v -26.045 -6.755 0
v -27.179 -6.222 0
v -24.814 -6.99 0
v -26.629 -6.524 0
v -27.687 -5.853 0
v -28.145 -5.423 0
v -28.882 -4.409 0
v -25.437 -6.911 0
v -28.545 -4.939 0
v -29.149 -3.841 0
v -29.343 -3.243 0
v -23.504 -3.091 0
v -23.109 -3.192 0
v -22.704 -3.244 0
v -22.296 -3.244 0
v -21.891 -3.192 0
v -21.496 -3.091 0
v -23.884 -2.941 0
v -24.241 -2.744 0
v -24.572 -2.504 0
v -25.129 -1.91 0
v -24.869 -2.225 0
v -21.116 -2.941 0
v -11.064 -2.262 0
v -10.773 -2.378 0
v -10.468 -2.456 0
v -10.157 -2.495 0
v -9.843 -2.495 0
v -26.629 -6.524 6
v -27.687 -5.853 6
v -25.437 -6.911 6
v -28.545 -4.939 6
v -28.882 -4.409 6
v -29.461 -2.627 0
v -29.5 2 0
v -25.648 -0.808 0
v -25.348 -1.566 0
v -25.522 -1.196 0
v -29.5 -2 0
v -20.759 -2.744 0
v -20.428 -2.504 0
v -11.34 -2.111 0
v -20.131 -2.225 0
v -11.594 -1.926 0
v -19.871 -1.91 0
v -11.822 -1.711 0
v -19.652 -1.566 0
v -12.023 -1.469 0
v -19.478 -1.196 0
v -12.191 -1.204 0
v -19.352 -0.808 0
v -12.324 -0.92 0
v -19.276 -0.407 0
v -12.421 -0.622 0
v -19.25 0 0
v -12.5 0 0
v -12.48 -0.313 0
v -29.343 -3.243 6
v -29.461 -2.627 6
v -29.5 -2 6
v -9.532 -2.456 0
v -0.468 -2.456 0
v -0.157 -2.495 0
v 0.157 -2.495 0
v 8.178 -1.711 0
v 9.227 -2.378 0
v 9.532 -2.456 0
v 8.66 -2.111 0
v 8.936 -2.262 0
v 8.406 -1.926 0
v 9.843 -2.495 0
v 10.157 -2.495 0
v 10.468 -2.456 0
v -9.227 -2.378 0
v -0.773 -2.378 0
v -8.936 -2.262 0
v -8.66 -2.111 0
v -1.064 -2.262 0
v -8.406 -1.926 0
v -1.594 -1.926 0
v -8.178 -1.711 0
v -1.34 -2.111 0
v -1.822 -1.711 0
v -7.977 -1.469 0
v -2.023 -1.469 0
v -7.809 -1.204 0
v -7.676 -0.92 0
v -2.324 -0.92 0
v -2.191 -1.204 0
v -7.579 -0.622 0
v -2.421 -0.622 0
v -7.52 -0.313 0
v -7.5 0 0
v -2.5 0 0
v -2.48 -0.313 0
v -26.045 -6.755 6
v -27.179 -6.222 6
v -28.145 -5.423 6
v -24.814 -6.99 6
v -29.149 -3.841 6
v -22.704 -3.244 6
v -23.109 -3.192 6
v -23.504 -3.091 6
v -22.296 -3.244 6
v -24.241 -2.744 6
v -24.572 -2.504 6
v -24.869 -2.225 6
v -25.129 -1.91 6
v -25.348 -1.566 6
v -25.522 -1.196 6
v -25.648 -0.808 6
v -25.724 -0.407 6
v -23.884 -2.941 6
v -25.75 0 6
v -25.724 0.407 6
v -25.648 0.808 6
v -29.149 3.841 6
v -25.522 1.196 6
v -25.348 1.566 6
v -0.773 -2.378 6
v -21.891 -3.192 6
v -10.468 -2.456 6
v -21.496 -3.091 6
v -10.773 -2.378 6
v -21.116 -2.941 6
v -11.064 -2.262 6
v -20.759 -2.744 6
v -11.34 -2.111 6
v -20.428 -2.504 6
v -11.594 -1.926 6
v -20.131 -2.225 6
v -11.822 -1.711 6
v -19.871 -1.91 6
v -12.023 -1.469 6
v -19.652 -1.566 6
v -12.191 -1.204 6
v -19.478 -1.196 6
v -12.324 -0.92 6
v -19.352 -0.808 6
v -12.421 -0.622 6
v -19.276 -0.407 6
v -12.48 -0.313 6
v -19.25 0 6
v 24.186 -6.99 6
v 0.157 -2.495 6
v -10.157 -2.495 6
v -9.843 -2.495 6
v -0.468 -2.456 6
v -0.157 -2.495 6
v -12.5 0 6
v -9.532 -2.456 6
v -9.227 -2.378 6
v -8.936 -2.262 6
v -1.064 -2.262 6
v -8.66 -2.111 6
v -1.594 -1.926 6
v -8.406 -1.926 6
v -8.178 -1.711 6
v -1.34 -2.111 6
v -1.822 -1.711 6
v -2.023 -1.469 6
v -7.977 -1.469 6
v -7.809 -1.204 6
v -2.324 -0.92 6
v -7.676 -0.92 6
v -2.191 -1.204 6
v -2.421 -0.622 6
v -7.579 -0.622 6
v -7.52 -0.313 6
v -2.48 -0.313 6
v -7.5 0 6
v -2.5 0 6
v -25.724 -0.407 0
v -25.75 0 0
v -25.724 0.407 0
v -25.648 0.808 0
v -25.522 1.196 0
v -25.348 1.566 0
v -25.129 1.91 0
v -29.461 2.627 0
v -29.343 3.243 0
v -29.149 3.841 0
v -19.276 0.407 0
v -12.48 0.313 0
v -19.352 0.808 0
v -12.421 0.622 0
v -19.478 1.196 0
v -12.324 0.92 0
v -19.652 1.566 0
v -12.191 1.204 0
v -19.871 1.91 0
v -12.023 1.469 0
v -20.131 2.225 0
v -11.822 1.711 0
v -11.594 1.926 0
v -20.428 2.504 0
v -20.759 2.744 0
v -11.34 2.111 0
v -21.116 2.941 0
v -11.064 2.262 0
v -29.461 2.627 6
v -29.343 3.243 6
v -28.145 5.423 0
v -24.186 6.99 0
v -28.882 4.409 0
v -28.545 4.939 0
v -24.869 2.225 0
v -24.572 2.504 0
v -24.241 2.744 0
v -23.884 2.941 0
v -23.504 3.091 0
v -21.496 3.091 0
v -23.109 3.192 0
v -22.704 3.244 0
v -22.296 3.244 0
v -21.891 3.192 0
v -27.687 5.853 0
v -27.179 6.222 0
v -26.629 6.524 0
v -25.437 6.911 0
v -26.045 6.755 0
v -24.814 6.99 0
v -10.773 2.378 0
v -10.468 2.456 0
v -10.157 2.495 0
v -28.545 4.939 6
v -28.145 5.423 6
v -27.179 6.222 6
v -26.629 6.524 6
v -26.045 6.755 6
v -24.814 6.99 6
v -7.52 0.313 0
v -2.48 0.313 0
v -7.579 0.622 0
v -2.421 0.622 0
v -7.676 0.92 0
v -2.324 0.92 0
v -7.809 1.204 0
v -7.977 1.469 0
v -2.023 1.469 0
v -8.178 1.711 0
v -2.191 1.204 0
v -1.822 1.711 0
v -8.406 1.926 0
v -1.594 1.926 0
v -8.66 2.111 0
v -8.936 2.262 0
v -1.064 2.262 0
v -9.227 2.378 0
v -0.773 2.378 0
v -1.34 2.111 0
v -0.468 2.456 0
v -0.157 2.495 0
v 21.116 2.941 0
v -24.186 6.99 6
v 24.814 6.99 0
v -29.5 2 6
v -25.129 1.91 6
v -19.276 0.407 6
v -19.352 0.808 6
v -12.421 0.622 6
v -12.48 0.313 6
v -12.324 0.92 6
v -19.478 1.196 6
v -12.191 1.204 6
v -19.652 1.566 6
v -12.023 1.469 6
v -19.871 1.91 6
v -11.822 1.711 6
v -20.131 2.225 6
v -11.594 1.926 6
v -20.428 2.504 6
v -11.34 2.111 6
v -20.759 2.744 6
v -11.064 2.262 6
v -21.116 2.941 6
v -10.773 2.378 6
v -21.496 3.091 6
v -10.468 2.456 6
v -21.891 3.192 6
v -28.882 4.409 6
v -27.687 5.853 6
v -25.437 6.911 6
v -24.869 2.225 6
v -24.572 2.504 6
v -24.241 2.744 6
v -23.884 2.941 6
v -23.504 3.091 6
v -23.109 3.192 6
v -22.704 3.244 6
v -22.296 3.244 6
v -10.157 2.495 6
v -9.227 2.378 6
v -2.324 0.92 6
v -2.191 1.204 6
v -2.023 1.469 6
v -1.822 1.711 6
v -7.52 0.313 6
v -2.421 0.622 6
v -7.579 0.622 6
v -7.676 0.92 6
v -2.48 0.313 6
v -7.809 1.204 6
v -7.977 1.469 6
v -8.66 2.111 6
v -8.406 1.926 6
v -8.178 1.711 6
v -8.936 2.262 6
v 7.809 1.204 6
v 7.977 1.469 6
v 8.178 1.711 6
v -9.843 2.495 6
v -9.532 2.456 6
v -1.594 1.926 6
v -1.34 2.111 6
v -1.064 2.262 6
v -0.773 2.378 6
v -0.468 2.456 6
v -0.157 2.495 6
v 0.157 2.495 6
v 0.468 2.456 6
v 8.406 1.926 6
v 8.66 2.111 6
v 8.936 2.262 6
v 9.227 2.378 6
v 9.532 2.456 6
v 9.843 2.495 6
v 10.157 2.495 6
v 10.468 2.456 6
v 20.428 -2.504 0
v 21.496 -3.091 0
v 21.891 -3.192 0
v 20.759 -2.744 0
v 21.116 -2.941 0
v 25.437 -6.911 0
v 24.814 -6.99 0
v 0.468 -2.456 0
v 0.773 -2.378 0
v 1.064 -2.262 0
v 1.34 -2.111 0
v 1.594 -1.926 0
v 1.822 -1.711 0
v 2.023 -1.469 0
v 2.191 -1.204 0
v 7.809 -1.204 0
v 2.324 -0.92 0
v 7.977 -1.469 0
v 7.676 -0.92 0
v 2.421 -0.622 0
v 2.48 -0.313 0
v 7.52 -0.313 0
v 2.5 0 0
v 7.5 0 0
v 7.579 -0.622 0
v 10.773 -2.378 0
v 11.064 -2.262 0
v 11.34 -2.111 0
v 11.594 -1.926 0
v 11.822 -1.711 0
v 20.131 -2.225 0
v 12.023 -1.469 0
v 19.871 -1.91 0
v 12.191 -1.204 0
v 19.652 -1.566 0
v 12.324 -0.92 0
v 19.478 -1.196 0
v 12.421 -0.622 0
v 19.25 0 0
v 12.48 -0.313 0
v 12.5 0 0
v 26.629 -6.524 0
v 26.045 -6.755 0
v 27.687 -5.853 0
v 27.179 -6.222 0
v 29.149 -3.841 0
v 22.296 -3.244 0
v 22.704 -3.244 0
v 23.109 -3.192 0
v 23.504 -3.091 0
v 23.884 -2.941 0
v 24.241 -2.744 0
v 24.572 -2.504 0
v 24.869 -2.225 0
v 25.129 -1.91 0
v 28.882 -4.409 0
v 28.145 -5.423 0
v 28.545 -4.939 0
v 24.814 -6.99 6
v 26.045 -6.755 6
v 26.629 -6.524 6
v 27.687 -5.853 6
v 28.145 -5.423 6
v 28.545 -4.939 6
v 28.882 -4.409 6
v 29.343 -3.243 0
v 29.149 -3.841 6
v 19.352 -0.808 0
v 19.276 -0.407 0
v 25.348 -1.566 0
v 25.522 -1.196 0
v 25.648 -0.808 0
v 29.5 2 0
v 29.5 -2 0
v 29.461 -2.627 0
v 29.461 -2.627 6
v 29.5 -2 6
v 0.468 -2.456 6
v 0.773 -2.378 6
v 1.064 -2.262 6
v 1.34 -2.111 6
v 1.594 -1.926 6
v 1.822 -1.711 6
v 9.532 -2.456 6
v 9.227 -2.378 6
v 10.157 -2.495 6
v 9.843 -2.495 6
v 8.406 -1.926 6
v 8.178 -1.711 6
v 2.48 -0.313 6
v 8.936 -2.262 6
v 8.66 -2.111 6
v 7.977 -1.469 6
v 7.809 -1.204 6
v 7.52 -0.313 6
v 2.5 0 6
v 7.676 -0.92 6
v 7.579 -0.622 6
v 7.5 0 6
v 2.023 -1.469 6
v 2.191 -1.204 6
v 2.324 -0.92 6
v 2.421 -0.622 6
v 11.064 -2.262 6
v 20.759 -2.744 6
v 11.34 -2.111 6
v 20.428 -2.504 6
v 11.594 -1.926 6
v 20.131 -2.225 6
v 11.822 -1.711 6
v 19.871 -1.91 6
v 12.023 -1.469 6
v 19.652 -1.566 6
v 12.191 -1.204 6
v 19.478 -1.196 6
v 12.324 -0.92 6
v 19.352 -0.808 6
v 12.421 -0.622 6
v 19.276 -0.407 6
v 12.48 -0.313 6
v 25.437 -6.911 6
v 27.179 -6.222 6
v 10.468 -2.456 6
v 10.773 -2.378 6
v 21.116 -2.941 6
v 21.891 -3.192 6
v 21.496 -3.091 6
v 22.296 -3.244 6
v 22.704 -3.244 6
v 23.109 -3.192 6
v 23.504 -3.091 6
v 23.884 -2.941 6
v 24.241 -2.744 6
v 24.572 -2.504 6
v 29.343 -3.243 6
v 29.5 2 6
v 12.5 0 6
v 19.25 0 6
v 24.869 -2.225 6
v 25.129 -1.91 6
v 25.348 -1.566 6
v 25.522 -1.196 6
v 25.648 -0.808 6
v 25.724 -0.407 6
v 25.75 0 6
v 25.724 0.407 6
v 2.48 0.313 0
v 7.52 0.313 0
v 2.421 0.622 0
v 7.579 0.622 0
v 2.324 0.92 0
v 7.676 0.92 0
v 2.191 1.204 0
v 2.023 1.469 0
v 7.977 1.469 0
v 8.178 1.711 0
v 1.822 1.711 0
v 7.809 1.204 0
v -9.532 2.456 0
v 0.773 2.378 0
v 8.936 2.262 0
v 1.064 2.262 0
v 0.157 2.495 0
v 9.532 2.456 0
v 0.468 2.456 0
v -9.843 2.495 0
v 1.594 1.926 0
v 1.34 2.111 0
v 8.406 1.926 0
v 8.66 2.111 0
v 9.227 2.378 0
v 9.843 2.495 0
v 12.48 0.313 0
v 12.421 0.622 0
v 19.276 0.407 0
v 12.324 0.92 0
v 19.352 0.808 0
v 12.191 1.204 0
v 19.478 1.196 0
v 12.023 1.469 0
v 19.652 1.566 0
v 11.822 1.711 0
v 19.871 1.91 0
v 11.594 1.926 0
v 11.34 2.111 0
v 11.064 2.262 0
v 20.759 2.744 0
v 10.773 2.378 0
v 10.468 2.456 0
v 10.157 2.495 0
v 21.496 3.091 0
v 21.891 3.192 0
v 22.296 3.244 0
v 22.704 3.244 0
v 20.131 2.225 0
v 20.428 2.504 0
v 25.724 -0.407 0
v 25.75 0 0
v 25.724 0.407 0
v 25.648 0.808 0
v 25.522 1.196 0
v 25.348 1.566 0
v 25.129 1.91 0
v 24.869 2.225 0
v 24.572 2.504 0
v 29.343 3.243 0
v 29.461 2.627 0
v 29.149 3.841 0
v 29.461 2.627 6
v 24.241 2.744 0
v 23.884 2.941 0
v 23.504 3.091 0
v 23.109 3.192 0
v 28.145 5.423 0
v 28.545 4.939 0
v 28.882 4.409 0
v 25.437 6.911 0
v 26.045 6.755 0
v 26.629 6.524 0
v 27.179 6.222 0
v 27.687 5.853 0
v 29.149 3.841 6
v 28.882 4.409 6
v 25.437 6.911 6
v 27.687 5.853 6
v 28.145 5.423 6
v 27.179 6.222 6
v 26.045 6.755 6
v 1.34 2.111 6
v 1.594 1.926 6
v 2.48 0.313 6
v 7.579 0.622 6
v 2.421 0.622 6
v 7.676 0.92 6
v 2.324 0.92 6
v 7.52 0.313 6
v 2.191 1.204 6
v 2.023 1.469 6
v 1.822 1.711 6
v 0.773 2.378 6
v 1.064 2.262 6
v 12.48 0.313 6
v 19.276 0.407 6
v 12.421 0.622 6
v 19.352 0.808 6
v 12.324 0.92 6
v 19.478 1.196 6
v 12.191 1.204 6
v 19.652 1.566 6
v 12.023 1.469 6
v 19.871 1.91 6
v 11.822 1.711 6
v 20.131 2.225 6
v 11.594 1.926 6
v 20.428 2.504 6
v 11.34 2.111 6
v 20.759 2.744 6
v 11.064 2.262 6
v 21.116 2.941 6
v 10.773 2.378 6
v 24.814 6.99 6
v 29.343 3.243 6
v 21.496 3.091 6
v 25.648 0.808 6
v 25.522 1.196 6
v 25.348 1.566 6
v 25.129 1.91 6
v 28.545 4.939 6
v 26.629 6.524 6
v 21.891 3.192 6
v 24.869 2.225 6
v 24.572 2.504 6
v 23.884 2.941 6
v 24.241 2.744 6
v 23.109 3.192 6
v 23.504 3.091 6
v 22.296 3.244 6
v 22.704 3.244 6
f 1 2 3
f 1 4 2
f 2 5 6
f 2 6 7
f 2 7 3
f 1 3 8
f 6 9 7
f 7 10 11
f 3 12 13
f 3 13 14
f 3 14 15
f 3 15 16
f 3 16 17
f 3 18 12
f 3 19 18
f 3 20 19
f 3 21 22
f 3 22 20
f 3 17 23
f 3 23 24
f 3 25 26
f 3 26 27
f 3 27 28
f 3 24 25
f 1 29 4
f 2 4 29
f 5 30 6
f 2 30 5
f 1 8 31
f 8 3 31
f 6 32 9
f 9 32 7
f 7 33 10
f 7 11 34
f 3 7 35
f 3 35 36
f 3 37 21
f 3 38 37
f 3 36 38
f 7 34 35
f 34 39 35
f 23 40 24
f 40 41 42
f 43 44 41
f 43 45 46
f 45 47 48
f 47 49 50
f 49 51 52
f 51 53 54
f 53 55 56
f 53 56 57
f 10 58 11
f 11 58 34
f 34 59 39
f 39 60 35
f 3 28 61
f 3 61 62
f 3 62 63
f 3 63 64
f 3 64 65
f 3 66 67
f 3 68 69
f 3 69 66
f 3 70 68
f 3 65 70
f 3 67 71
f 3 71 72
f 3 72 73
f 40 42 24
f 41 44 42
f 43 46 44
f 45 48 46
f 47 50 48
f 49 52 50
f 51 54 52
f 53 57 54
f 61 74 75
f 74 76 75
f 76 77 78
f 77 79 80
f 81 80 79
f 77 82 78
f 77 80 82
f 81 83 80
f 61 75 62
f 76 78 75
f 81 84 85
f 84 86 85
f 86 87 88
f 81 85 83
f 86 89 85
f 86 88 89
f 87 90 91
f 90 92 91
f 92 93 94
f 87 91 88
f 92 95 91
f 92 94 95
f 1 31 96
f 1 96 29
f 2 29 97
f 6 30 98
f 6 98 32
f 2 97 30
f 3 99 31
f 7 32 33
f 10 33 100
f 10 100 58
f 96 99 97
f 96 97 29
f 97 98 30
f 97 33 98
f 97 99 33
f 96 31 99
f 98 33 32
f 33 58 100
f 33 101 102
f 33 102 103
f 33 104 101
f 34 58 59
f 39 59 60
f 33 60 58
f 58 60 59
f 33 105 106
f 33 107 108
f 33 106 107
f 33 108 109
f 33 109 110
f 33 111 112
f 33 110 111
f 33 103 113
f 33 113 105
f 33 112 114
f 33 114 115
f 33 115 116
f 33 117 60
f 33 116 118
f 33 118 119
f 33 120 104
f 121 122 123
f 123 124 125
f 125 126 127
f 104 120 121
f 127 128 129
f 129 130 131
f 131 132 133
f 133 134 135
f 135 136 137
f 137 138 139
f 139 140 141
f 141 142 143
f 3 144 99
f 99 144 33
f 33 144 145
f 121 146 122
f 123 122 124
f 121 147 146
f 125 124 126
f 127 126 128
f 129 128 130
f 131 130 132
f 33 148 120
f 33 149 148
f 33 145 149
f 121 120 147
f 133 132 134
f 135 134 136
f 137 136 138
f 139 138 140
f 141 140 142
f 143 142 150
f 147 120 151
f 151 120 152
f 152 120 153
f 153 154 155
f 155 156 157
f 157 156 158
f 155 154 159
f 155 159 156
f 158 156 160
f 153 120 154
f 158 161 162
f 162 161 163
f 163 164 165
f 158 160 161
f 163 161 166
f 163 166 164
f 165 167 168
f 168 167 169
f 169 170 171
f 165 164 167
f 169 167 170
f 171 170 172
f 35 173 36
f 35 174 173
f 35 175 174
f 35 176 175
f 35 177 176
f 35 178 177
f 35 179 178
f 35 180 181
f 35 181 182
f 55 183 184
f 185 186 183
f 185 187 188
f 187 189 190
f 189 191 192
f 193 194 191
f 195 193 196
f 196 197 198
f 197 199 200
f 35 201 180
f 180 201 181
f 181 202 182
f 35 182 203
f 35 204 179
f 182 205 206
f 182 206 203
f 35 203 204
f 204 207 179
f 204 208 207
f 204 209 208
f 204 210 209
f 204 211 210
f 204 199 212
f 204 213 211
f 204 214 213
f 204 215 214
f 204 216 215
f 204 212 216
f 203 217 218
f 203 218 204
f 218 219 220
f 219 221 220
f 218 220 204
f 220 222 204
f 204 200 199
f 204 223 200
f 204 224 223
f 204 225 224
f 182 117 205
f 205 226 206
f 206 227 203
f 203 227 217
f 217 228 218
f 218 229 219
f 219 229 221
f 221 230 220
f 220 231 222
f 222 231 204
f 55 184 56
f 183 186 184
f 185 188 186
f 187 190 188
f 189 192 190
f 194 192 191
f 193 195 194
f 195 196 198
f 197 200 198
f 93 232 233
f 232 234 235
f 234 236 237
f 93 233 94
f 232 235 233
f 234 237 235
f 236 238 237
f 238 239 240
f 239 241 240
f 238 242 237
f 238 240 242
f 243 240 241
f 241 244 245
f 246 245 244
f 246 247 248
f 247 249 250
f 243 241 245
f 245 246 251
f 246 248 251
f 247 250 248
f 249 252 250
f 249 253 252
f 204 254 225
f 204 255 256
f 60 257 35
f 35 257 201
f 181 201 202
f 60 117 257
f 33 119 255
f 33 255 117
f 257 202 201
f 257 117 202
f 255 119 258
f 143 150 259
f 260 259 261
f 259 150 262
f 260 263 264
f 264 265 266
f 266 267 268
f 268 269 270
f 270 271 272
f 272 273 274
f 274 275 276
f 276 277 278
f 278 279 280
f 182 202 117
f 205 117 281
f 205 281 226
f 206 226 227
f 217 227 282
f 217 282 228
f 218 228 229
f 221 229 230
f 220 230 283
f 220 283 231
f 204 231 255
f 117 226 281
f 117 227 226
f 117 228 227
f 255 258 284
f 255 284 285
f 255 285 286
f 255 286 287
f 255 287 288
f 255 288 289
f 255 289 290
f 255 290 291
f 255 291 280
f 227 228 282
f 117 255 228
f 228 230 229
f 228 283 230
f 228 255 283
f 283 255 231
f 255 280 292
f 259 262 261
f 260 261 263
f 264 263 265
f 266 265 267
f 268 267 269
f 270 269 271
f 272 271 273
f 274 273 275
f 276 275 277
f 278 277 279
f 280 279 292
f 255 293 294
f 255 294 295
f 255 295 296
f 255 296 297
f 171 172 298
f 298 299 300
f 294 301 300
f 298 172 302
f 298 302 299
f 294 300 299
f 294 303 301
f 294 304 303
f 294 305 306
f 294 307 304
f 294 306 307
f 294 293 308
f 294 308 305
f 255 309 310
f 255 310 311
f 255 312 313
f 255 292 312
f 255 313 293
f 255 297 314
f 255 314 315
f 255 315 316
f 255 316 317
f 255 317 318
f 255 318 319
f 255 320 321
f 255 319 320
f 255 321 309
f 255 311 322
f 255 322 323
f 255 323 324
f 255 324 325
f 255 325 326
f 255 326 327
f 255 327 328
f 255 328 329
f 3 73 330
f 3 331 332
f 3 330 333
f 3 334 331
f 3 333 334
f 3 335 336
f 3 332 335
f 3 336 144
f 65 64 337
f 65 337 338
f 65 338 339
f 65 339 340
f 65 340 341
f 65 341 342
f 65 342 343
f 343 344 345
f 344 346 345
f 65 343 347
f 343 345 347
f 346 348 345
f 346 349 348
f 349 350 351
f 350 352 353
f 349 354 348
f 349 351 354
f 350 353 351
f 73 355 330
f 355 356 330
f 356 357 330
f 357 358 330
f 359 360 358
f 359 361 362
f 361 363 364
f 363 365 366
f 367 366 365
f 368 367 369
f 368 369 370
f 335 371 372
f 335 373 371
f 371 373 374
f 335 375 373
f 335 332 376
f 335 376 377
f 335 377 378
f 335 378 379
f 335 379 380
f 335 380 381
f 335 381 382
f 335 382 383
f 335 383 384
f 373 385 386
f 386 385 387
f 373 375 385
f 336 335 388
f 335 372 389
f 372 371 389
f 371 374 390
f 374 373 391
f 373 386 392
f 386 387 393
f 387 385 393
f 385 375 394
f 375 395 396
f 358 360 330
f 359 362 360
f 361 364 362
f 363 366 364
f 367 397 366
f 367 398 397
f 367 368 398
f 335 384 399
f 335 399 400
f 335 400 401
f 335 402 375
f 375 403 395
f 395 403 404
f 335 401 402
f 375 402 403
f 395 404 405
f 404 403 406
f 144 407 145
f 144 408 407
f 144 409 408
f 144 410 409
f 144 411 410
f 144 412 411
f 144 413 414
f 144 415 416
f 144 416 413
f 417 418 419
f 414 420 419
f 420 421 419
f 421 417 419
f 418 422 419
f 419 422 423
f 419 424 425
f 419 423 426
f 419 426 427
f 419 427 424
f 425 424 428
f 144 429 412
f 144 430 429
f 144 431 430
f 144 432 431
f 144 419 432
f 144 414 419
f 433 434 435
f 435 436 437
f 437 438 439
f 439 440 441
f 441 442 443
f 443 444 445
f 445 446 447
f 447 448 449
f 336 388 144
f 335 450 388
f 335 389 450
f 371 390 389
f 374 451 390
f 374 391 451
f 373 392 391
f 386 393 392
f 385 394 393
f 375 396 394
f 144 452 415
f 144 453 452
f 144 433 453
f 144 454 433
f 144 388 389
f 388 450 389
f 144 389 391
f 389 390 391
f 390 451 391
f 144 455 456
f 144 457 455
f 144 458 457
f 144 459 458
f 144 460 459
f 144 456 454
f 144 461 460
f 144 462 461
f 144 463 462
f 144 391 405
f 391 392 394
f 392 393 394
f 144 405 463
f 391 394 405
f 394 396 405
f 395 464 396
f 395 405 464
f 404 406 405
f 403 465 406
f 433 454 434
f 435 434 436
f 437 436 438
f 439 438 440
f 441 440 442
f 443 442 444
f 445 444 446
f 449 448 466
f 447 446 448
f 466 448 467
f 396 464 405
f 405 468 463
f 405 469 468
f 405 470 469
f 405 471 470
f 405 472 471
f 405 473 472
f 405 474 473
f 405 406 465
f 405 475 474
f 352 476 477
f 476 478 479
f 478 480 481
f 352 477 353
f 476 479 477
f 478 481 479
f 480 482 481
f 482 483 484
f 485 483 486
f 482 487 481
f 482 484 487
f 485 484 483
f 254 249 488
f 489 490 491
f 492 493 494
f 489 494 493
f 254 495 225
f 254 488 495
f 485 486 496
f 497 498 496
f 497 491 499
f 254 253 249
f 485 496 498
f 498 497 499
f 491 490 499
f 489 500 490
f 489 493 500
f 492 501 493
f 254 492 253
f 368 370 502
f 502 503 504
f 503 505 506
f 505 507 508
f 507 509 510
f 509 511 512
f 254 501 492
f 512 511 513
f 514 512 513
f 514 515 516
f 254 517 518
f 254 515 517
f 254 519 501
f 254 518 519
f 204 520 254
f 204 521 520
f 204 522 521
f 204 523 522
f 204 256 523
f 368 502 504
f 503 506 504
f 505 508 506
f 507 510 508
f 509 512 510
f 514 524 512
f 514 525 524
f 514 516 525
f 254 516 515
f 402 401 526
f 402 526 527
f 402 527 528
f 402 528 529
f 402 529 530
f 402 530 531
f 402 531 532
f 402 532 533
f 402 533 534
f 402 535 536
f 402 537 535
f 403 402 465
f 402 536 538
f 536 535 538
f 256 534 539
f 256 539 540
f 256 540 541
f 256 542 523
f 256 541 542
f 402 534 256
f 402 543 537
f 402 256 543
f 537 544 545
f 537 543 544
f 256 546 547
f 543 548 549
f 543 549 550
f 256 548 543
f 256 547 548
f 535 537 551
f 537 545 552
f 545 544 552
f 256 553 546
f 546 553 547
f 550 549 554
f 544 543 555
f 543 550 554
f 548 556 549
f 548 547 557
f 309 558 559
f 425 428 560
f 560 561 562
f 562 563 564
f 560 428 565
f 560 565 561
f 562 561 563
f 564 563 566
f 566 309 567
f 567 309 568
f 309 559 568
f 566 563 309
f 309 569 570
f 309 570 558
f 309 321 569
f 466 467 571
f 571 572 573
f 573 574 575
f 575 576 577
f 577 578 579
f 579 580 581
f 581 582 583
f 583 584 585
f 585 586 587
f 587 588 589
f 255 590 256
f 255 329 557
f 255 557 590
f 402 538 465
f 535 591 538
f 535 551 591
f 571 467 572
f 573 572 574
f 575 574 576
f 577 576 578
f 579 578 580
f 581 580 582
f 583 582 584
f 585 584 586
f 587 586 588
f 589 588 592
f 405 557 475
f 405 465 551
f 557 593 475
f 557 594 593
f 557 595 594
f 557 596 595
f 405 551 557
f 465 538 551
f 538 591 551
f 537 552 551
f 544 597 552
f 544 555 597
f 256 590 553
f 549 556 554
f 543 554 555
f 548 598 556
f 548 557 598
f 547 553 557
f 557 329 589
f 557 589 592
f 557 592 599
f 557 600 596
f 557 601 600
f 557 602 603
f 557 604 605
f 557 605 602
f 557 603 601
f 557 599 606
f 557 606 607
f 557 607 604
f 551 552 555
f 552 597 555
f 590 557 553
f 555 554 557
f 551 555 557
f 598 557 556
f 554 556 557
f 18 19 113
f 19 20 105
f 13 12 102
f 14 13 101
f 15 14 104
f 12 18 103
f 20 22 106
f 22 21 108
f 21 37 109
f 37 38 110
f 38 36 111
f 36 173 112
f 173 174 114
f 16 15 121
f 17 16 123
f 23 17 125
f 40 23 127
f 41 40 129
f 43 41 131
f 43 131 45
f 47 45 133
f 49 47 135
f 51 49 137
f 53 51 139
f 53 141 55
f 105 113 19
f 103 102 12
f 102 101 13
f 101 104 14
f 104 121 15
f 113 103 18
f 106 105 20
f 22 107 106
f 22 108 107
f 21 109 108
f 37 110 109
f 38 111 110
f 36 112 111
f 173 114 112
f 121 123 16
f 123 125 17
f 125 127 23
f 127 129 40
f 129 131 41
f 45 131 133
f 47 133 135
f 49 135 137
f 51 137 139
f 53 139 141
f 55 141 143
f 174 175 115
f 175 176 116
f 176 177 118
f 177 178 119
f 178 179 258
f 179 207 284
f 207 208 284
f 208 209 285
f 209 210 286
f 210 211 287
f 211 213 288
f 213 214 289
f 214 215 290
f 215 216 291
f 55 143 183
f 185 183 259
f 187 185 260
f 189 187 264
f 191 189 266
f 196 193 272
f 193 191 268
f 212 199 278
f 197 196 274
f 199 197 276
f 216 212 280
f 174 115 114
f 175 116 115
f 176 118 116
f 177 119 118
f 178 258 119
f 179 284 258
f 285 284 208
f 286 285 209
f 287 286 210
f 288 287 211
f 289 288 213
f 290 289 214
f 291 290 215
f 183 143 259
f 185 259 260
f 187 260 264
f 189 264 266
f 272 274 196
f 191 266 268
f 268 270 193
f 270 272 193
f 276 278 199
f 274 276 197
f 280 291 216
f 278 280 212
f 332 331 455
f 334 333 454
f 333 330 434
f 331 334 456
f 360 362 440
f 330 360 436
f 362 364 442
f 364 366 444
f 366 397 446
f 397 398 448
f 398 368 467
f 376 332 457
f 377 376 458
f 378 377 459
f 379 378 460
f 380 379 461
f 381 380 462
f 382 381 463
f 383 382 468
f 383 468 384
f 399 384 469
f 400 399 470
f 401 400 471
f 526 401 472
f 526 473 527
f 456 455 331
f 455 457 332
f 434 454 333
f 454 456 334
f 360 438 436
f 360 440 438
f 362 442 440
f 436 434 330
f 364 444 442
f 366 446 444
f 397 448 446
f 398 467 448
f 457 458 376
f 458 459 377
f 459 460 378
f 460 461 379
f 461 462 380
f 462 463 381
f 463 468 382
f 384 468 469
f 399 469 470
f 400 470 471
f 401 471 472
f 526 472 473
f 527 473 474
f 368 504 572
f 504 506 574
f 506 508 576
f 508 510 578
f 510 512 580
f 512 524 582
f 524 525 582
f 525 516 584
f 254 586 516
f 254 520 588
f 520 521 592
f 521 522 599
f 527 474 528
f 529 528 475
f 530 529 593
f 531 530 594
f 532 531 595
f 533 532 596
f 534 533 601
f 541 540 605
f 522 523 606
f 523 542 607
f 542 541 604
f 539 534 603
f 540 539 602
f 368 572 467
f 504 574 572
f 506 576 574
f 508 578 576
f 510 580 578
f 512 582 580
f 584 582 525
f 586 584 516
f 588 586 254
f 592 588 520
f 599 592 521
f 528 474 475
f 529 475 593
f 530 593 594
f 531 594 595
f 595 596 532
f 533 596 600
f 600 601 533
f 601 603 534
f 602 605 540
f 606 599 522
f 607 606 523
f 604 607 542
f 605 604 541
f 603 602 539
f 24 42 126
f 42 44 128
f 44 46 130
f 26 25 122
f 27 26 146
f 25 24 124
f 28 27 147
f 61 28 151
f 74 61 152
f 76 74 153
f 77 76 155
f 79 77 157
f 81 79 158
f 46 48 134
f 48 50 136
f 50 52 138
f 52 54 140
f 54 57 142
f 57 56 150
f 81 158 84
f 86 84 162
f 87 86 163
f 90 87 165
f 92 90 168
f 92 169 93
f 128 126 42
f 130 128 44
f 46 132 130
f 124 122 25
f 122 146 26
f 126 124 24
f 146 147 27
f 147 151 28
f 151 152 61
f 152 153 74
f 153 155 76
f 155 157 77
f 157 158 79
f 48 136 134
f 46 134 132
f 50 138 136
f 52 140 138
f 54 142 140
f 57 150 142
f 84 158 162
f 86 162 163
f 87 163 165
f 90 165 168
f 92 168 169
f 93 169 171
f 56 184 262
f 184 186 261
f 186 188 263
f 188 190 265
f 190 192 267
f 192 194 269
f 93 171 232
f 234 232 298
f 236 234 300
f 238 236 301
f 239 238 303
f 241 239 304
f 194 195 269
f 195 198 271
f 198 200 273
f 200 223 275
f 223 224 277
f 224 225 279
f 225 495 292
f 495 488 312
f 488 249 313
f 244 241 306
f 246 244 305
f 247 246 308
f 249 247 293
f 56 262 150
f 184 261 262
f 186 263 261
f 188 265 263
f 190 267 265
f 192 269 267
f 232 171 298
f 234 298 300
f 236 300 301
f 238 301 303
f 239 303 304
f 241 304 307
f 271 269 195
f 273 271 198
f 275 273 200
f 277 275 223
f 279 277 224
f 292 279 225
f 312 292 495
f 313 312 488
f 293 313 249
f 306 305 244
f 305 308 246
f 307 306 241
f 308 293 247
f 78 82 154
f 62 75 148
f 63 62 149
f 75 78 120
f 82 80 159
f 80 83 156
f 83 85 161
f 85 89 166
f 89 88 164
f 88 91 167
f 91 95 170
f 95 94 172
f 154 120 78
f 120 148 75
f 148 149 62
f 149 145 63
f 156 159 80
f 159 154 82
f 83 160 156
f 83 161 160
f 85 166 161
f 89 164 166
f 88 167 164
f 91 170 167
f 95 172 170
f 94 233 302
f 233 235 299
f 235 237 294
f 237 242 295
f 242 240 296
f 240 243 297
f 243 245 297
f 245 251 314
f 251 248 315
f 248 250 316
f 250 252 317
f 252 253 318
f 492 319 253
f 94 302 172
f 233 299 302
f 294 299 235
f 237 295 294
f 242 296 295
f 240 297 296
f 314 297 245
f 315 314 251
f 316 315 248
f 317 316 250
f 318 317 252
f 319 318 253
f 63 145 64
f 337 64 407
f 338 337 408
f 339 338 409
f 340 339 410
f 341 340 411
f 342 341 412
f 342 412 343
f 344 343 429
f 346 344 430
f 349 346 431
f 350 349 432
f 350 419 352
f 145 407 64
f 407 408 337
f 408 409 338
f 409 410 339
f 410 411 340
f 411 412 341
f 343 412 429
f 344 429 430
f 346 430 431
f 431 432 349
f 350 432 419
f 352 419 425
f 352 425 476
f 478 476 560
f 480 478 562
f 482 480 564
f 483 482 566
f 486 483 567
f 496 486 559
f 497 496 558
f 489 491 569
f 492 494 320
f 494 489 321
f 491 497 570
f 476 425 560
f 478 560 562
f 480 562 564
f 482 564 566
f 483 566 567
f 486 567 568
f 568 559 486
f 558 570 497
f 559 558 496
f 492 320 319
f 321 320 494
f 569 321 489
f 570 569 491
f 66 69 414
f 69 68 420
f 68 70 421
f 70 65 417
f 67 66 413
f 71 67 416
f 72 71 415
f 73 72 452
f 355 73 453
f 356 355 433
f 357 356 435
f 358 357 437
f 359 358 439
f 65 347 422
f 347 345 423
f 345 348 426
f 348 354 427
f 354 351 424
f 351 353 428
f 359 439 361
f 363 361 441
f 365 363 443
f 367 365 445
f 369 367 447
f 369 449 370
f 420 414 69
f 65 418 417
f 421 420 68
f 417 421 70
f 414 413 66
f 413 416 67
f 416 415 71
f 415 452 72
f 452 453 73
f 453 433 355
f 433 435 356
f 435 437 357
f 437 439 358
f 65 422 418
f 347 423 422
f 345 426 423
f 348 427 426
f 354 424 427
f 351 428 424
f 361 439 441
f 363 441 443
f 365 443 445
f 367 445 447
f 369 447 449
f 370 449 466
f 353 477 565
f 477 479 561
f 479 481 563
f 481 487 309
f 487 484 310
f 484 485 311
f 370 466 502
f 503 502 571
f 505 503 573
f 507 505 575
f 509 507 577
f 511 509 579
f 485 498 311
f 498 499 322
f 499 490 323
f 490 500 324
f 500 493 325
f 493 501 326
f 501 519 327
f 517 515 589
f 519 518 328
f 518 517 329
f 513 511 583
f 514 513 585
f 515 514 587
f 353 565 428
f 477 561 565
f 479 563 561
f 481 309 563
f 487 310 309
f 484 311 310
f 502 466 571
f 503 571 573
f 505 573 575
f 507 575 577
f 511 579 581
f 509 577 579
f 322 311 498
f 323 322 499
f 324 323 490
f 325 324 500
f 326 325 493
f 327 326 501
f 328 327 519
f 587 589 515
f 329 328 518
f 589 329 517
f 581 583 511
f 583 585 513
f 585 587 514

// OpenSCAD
$fn = 50;

difference() {
	union() {
		hull() {
			translate(v = [-24.5, 2.0, 0]) {
				cylinder(h = 6, r = 5);
			}
			translate(v = [24.5, 2.0, 0]) {
				cylinder(h = 6, r = 5);
			}
			translate(v = [-24.5, -2.0, 0]) {
				cylinder(h = 6, r = 5);
			}
			translate(v = [24.5, -2.0, 0]) {
				cylinder(h = 6, r = 5);
			}
		}
	}
	union() {
		translate(v = [-22.5, 0.0, 0]) {
			cylinder(h = 6, r = 3.25);
		}
		translate(v = [22.5, 0.0, 0]) {
			cylinder(h = 6, r = 3.25);
		}
		translate(v = [-10.0, 0, 0.0]) {
			cylinder(h = 6, r = 2.5);
		}
		cylinder(h = 6, r = 2.5);
		translate(v = [10.0, 0, 0.0]) {
			cylinder(h = 6, r = 2.5);
		}
	}
}
